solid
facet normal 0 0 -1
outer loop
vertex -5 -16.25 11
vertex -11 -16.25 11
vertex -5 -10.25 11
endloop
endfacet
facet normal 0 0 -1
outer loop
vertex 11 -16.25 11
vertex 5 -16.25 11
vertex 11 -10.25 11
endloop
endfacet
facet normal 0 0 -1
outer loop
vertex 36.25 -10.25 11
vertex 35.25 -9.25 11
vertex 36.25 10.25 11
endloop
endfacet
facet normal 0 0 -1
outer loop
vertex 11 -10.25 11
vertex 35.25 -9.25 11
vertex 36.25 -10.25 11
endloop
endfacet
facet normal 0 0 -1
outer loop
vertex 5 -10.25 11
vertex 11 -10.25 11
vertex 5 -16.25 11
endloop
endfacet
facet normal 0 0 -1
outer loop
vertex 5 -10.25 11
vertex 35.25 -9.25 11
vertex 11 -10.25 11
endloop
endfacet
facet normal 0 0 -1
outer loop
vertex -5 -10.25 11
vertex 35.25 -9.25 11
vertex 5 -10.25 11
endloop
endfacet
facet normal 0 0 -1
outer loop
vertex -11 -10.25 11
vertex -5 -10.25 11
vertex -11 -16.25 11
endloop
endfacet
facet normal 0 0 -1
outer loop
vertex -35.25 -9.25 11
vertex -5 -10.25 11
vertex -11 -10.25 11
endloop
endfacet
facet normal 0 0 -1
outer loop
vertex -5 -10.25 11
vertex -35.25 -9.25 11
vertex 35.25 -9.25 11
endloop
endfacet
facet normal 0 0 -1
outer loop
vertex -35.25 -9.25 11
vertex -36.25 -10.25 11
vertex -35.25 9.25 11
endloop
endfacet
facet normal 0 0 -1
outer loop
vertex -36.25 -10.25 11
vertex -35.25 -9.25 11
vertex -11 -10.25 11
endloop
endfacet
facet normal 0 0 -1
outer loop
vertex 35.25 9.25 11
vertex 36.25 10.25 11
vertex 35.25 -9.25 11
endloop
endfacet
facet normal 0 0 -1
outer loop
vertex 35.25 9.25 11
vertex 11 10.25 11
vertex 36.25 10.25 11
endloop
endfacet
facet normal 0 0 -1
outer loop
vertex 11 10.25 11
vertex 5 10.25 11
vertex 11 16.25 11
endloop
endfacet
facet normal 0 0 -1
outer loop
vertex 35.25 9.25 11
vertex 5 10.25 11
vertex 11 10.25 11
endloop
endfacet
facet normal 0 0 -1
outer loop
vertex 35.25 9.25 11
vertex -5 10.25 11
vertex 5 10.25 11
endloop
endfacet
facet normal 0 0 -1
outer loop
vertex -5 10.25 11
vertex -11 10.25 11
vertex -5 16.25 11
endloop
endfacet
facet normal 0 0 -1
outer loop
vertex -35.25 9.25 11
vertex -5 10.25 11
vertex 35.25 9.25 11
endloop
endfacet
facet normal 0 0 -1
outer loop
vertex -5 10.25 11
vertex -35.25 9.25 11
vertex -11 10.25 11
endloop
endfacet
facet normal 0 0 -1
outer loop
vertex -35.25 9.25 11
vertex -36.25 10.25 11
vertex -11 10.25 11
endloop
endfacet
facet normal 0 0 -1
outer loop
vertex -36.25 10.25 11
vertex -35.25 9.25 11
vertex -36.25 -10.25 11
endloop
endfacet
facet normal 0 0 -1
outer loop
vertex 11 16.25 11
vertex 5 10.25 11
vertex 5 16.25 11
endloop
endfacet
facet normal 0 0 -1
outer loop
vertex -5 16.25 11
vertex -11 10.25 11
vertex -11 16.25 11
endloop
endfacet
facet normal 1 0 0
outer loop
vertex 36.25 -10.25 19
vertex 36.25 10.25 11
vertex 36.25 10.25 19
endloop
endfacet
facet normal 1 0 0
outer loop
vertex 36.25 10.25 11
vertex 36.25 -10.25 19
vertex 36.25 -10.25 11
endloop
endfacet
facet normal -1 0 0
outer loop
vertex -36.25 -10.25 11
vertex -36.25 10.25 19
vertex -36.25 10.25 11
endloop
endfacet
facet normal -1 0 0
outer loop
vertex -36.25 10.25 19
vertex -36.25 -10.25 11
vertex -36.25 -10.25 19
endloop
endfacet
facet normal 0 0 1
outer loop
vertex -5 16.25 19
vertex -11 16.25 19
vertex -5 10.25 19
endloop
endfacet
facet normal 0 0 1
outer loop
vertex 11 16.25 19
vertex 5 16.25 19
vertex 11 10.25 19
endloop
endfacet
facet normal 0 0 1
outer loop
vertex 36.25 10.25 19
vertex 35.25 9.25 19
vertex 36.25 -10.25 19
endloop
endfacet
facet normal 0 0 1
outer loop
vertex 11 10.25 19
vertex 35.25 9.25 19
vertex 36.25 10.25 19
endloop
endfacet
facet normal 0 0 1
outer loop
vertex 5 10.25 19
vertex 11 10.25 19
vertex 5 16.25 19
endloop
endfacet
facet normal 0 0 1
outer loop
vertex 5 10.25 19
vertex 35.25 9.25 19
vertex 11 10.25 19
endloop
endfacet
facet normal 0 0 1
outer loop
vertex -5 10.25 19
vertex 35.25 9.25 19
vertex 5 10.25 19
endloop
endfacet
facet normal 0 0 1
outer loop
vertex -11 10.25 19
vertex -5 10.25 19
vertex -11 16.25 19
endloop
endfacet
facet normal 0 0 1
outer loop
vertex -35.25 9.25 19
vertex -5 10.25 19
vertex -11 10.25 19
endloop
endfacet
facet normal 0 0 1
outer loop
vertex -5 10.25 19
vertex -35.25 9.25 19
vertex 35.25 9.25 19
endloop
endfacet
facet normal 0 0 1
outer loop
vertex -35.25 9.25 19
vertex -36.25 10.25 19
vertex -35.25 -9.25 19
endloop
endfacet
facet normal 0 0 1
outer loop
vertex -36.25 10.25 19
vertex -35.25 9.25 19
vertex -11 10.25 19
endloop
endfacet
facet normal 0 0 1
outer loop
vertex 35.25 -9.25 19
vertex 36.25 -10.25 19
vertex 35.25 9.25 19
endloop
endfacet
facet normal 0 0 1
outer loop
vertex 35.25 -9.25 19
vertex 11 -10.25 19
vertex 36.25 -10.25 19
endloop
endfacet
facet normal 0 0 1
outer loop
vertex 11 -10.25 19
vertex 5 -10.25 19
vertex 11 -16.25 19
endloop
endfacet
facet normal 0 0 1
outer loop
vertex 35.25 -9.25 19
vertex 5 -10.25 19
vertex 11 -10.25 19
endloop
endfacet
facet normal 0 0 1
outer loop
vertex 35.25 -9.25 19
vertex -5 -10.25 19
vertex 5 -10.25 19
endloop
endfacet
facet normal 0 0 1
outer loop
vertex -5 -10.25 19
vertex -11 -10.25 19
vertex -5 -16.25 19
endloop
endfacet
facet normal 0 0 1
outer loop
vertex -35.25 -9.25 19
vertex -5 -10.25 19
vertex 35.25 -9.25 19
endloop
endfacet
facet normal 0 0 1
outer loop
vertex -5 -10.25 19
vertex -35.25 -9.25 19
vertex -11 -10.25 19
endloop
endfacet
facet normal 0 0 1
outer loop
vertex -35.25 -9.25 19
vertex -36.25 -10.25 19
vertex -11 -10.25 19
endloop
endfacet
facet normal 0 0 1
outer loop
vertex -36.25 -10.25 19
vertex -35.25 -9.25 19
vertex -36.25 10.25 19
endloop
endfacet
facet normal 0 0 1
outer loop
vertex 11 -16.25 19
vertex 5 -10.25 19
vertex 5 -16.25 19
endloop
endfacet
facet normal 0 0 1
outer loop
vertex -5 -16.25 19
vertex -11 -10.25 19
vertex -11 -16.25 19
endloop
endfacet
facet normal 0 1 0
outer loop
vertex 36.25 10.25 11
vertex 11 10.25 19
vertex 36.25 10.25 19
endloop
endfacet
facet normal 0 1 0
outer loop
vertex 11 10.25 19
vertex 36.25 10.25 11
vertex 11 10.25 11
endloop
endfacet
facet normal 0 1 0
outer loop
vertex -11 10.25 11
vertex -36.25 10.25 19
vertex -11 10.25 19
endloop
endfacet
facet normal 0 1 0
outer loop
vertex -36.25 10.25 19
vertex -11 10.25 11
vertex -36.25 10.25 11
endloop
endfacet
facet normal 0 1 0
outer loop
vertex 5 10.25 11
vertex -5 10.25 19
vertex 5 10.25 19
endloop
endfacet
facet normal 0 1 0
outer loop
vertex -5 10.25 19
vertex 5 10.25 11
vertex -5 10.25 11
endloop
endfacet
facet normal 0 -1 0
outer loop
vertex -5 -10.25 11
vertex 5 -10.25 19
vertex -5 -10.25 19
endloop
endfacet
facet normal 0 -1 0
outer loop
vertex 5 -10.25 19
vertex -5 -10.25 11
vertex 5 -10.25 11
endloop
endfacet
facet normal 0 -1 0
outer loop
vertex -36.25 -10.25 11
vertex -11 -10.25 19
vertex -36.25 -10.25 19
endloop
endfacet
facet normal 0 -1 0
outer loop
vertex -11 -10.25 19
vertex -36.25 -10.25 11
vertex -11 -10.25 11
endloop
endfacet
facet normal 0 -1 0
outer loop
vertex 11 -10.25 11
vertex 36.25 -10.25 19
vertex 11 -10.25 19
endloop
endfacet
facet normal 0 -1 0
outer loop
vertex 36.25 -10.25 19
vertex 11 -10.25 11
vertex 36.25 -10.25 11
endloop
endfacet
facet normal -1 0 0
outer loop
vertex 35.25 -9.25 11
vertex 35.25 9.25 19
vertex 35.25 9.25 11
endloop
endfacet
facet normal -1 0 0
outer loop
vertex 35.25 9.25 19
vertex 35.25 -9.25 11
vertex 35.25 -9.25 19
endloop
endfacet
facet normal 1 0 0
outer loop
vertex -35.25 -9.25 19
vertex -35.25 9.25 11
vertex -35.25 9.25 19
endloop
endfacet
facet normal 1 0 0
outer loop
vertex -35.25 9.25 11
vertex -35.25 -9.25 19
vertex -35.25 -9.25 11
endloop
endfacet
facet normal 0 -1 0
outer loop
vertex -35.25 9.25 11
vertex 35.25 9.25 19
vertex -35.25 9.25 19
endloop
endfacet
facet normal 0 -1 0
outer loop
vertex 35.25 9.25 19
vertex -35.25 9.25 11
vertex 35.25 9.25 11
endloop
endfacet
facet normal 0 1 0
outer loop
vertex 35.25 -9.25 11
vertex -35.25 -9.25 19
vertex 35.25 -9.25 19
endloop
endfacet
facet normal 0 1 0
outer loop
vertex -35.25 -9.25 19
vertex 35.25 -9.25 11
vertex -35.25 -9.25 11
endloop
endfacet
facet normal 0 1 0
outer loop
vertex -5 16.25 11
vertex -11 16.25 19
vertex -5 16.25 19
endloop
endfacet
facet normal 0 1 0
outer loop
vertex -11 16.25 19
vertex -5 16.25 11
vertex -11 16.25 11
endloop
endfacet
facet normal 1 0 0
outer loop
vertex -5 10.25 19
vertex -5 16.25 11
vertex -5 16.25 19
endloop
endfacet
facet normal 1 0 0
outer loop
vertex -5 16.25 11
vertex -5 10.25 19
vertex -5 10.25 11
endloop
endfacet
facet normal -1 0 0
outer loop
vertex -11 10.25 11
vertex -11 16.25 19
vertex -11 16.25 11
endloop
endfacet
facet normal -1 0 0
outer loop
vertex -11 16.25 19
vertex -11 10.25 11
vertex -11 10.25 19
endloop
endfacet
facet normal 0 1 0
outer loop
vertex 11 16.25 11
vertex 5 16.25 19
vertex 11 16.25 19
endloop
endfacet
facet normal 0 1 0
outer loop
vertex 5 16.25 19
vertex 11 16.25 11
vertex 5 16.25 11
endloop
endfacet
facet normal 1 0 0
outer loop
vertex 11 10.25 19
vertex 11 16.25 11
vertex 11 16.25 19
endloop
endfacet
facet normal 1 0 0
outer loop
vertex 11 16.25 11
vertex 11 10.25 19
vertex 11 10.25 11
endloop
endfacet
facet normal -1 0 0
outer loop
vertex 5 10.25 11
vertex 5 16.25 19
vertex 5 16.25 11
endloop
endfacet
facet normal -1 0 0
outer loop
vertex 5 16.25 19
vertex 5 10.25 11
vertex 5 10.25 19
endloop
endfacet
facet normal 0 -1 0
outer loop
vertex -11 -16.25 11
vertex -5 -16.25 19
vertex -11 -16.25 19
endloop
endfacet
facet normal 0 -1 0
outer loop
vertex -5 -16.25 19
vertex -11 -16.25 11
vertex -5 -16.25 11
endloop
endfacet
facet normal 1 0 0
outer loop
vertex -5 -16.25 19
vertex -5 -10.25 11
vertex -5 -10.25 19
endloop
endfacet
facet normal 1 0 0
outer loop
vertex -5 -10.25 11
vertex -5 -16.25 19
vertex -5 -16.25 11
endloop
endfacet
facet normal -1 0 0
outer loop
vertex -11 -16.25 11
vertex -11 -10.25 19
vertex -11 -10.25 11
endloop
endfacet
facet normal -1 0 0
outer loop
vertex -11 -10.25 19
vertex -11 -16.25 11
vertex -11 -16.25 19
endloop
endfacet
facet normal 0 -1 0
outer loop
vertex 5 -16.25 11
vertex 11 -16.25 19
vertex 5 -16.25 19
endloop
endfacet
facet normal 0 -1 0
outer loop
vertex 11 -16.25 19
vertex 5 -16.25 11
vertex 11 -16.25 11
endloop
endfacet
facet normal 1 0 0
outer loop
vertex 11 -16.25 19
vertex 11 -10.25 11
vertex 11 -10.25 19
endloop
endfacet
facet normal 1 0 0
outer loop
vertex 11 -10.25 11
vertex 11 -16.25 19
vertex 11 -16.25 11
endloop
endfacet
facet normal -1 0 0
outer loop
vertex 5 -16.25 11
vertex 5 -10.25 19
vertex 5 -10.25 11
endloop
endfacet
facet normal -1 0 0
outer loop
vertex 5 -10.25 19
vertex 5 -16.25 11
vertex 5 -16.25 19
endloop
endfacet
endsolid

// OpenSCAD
translate ([0, 0, 15]) {
  rotate (a=90.0, v=[0, 1, 0]) {
    union () {
      difference () {
        cube ([8, 20.5, 72.5], center=true);
        cube ([1000, 18.5, 70.5], center=true);
      }
      translate ([0, 13.25, 0]) {
        rotate (a=90.0, v=[1, 0, 0]) {
          union () {
            translate ([0, -8, 0]) {
              cube ([8, 6, 6], center=true);
            }
            translate ([0, 8, 0]) {
              cube ([8, 6, 6], center=true);
            }
          }
        }
      }
      translate ([0, -13.25, 0]) {
        rotate (a=90.0, v=[1, 0, 0]) {
          union () {
            translate ([0, -8, 0]) {
              cube ([8, 6, 6], center=true);
            }
            translate ([0, 8, 0]) {
              cube ([8, 6, 6], center=true);
            }
          }
        }
      }
    }
  }
}
